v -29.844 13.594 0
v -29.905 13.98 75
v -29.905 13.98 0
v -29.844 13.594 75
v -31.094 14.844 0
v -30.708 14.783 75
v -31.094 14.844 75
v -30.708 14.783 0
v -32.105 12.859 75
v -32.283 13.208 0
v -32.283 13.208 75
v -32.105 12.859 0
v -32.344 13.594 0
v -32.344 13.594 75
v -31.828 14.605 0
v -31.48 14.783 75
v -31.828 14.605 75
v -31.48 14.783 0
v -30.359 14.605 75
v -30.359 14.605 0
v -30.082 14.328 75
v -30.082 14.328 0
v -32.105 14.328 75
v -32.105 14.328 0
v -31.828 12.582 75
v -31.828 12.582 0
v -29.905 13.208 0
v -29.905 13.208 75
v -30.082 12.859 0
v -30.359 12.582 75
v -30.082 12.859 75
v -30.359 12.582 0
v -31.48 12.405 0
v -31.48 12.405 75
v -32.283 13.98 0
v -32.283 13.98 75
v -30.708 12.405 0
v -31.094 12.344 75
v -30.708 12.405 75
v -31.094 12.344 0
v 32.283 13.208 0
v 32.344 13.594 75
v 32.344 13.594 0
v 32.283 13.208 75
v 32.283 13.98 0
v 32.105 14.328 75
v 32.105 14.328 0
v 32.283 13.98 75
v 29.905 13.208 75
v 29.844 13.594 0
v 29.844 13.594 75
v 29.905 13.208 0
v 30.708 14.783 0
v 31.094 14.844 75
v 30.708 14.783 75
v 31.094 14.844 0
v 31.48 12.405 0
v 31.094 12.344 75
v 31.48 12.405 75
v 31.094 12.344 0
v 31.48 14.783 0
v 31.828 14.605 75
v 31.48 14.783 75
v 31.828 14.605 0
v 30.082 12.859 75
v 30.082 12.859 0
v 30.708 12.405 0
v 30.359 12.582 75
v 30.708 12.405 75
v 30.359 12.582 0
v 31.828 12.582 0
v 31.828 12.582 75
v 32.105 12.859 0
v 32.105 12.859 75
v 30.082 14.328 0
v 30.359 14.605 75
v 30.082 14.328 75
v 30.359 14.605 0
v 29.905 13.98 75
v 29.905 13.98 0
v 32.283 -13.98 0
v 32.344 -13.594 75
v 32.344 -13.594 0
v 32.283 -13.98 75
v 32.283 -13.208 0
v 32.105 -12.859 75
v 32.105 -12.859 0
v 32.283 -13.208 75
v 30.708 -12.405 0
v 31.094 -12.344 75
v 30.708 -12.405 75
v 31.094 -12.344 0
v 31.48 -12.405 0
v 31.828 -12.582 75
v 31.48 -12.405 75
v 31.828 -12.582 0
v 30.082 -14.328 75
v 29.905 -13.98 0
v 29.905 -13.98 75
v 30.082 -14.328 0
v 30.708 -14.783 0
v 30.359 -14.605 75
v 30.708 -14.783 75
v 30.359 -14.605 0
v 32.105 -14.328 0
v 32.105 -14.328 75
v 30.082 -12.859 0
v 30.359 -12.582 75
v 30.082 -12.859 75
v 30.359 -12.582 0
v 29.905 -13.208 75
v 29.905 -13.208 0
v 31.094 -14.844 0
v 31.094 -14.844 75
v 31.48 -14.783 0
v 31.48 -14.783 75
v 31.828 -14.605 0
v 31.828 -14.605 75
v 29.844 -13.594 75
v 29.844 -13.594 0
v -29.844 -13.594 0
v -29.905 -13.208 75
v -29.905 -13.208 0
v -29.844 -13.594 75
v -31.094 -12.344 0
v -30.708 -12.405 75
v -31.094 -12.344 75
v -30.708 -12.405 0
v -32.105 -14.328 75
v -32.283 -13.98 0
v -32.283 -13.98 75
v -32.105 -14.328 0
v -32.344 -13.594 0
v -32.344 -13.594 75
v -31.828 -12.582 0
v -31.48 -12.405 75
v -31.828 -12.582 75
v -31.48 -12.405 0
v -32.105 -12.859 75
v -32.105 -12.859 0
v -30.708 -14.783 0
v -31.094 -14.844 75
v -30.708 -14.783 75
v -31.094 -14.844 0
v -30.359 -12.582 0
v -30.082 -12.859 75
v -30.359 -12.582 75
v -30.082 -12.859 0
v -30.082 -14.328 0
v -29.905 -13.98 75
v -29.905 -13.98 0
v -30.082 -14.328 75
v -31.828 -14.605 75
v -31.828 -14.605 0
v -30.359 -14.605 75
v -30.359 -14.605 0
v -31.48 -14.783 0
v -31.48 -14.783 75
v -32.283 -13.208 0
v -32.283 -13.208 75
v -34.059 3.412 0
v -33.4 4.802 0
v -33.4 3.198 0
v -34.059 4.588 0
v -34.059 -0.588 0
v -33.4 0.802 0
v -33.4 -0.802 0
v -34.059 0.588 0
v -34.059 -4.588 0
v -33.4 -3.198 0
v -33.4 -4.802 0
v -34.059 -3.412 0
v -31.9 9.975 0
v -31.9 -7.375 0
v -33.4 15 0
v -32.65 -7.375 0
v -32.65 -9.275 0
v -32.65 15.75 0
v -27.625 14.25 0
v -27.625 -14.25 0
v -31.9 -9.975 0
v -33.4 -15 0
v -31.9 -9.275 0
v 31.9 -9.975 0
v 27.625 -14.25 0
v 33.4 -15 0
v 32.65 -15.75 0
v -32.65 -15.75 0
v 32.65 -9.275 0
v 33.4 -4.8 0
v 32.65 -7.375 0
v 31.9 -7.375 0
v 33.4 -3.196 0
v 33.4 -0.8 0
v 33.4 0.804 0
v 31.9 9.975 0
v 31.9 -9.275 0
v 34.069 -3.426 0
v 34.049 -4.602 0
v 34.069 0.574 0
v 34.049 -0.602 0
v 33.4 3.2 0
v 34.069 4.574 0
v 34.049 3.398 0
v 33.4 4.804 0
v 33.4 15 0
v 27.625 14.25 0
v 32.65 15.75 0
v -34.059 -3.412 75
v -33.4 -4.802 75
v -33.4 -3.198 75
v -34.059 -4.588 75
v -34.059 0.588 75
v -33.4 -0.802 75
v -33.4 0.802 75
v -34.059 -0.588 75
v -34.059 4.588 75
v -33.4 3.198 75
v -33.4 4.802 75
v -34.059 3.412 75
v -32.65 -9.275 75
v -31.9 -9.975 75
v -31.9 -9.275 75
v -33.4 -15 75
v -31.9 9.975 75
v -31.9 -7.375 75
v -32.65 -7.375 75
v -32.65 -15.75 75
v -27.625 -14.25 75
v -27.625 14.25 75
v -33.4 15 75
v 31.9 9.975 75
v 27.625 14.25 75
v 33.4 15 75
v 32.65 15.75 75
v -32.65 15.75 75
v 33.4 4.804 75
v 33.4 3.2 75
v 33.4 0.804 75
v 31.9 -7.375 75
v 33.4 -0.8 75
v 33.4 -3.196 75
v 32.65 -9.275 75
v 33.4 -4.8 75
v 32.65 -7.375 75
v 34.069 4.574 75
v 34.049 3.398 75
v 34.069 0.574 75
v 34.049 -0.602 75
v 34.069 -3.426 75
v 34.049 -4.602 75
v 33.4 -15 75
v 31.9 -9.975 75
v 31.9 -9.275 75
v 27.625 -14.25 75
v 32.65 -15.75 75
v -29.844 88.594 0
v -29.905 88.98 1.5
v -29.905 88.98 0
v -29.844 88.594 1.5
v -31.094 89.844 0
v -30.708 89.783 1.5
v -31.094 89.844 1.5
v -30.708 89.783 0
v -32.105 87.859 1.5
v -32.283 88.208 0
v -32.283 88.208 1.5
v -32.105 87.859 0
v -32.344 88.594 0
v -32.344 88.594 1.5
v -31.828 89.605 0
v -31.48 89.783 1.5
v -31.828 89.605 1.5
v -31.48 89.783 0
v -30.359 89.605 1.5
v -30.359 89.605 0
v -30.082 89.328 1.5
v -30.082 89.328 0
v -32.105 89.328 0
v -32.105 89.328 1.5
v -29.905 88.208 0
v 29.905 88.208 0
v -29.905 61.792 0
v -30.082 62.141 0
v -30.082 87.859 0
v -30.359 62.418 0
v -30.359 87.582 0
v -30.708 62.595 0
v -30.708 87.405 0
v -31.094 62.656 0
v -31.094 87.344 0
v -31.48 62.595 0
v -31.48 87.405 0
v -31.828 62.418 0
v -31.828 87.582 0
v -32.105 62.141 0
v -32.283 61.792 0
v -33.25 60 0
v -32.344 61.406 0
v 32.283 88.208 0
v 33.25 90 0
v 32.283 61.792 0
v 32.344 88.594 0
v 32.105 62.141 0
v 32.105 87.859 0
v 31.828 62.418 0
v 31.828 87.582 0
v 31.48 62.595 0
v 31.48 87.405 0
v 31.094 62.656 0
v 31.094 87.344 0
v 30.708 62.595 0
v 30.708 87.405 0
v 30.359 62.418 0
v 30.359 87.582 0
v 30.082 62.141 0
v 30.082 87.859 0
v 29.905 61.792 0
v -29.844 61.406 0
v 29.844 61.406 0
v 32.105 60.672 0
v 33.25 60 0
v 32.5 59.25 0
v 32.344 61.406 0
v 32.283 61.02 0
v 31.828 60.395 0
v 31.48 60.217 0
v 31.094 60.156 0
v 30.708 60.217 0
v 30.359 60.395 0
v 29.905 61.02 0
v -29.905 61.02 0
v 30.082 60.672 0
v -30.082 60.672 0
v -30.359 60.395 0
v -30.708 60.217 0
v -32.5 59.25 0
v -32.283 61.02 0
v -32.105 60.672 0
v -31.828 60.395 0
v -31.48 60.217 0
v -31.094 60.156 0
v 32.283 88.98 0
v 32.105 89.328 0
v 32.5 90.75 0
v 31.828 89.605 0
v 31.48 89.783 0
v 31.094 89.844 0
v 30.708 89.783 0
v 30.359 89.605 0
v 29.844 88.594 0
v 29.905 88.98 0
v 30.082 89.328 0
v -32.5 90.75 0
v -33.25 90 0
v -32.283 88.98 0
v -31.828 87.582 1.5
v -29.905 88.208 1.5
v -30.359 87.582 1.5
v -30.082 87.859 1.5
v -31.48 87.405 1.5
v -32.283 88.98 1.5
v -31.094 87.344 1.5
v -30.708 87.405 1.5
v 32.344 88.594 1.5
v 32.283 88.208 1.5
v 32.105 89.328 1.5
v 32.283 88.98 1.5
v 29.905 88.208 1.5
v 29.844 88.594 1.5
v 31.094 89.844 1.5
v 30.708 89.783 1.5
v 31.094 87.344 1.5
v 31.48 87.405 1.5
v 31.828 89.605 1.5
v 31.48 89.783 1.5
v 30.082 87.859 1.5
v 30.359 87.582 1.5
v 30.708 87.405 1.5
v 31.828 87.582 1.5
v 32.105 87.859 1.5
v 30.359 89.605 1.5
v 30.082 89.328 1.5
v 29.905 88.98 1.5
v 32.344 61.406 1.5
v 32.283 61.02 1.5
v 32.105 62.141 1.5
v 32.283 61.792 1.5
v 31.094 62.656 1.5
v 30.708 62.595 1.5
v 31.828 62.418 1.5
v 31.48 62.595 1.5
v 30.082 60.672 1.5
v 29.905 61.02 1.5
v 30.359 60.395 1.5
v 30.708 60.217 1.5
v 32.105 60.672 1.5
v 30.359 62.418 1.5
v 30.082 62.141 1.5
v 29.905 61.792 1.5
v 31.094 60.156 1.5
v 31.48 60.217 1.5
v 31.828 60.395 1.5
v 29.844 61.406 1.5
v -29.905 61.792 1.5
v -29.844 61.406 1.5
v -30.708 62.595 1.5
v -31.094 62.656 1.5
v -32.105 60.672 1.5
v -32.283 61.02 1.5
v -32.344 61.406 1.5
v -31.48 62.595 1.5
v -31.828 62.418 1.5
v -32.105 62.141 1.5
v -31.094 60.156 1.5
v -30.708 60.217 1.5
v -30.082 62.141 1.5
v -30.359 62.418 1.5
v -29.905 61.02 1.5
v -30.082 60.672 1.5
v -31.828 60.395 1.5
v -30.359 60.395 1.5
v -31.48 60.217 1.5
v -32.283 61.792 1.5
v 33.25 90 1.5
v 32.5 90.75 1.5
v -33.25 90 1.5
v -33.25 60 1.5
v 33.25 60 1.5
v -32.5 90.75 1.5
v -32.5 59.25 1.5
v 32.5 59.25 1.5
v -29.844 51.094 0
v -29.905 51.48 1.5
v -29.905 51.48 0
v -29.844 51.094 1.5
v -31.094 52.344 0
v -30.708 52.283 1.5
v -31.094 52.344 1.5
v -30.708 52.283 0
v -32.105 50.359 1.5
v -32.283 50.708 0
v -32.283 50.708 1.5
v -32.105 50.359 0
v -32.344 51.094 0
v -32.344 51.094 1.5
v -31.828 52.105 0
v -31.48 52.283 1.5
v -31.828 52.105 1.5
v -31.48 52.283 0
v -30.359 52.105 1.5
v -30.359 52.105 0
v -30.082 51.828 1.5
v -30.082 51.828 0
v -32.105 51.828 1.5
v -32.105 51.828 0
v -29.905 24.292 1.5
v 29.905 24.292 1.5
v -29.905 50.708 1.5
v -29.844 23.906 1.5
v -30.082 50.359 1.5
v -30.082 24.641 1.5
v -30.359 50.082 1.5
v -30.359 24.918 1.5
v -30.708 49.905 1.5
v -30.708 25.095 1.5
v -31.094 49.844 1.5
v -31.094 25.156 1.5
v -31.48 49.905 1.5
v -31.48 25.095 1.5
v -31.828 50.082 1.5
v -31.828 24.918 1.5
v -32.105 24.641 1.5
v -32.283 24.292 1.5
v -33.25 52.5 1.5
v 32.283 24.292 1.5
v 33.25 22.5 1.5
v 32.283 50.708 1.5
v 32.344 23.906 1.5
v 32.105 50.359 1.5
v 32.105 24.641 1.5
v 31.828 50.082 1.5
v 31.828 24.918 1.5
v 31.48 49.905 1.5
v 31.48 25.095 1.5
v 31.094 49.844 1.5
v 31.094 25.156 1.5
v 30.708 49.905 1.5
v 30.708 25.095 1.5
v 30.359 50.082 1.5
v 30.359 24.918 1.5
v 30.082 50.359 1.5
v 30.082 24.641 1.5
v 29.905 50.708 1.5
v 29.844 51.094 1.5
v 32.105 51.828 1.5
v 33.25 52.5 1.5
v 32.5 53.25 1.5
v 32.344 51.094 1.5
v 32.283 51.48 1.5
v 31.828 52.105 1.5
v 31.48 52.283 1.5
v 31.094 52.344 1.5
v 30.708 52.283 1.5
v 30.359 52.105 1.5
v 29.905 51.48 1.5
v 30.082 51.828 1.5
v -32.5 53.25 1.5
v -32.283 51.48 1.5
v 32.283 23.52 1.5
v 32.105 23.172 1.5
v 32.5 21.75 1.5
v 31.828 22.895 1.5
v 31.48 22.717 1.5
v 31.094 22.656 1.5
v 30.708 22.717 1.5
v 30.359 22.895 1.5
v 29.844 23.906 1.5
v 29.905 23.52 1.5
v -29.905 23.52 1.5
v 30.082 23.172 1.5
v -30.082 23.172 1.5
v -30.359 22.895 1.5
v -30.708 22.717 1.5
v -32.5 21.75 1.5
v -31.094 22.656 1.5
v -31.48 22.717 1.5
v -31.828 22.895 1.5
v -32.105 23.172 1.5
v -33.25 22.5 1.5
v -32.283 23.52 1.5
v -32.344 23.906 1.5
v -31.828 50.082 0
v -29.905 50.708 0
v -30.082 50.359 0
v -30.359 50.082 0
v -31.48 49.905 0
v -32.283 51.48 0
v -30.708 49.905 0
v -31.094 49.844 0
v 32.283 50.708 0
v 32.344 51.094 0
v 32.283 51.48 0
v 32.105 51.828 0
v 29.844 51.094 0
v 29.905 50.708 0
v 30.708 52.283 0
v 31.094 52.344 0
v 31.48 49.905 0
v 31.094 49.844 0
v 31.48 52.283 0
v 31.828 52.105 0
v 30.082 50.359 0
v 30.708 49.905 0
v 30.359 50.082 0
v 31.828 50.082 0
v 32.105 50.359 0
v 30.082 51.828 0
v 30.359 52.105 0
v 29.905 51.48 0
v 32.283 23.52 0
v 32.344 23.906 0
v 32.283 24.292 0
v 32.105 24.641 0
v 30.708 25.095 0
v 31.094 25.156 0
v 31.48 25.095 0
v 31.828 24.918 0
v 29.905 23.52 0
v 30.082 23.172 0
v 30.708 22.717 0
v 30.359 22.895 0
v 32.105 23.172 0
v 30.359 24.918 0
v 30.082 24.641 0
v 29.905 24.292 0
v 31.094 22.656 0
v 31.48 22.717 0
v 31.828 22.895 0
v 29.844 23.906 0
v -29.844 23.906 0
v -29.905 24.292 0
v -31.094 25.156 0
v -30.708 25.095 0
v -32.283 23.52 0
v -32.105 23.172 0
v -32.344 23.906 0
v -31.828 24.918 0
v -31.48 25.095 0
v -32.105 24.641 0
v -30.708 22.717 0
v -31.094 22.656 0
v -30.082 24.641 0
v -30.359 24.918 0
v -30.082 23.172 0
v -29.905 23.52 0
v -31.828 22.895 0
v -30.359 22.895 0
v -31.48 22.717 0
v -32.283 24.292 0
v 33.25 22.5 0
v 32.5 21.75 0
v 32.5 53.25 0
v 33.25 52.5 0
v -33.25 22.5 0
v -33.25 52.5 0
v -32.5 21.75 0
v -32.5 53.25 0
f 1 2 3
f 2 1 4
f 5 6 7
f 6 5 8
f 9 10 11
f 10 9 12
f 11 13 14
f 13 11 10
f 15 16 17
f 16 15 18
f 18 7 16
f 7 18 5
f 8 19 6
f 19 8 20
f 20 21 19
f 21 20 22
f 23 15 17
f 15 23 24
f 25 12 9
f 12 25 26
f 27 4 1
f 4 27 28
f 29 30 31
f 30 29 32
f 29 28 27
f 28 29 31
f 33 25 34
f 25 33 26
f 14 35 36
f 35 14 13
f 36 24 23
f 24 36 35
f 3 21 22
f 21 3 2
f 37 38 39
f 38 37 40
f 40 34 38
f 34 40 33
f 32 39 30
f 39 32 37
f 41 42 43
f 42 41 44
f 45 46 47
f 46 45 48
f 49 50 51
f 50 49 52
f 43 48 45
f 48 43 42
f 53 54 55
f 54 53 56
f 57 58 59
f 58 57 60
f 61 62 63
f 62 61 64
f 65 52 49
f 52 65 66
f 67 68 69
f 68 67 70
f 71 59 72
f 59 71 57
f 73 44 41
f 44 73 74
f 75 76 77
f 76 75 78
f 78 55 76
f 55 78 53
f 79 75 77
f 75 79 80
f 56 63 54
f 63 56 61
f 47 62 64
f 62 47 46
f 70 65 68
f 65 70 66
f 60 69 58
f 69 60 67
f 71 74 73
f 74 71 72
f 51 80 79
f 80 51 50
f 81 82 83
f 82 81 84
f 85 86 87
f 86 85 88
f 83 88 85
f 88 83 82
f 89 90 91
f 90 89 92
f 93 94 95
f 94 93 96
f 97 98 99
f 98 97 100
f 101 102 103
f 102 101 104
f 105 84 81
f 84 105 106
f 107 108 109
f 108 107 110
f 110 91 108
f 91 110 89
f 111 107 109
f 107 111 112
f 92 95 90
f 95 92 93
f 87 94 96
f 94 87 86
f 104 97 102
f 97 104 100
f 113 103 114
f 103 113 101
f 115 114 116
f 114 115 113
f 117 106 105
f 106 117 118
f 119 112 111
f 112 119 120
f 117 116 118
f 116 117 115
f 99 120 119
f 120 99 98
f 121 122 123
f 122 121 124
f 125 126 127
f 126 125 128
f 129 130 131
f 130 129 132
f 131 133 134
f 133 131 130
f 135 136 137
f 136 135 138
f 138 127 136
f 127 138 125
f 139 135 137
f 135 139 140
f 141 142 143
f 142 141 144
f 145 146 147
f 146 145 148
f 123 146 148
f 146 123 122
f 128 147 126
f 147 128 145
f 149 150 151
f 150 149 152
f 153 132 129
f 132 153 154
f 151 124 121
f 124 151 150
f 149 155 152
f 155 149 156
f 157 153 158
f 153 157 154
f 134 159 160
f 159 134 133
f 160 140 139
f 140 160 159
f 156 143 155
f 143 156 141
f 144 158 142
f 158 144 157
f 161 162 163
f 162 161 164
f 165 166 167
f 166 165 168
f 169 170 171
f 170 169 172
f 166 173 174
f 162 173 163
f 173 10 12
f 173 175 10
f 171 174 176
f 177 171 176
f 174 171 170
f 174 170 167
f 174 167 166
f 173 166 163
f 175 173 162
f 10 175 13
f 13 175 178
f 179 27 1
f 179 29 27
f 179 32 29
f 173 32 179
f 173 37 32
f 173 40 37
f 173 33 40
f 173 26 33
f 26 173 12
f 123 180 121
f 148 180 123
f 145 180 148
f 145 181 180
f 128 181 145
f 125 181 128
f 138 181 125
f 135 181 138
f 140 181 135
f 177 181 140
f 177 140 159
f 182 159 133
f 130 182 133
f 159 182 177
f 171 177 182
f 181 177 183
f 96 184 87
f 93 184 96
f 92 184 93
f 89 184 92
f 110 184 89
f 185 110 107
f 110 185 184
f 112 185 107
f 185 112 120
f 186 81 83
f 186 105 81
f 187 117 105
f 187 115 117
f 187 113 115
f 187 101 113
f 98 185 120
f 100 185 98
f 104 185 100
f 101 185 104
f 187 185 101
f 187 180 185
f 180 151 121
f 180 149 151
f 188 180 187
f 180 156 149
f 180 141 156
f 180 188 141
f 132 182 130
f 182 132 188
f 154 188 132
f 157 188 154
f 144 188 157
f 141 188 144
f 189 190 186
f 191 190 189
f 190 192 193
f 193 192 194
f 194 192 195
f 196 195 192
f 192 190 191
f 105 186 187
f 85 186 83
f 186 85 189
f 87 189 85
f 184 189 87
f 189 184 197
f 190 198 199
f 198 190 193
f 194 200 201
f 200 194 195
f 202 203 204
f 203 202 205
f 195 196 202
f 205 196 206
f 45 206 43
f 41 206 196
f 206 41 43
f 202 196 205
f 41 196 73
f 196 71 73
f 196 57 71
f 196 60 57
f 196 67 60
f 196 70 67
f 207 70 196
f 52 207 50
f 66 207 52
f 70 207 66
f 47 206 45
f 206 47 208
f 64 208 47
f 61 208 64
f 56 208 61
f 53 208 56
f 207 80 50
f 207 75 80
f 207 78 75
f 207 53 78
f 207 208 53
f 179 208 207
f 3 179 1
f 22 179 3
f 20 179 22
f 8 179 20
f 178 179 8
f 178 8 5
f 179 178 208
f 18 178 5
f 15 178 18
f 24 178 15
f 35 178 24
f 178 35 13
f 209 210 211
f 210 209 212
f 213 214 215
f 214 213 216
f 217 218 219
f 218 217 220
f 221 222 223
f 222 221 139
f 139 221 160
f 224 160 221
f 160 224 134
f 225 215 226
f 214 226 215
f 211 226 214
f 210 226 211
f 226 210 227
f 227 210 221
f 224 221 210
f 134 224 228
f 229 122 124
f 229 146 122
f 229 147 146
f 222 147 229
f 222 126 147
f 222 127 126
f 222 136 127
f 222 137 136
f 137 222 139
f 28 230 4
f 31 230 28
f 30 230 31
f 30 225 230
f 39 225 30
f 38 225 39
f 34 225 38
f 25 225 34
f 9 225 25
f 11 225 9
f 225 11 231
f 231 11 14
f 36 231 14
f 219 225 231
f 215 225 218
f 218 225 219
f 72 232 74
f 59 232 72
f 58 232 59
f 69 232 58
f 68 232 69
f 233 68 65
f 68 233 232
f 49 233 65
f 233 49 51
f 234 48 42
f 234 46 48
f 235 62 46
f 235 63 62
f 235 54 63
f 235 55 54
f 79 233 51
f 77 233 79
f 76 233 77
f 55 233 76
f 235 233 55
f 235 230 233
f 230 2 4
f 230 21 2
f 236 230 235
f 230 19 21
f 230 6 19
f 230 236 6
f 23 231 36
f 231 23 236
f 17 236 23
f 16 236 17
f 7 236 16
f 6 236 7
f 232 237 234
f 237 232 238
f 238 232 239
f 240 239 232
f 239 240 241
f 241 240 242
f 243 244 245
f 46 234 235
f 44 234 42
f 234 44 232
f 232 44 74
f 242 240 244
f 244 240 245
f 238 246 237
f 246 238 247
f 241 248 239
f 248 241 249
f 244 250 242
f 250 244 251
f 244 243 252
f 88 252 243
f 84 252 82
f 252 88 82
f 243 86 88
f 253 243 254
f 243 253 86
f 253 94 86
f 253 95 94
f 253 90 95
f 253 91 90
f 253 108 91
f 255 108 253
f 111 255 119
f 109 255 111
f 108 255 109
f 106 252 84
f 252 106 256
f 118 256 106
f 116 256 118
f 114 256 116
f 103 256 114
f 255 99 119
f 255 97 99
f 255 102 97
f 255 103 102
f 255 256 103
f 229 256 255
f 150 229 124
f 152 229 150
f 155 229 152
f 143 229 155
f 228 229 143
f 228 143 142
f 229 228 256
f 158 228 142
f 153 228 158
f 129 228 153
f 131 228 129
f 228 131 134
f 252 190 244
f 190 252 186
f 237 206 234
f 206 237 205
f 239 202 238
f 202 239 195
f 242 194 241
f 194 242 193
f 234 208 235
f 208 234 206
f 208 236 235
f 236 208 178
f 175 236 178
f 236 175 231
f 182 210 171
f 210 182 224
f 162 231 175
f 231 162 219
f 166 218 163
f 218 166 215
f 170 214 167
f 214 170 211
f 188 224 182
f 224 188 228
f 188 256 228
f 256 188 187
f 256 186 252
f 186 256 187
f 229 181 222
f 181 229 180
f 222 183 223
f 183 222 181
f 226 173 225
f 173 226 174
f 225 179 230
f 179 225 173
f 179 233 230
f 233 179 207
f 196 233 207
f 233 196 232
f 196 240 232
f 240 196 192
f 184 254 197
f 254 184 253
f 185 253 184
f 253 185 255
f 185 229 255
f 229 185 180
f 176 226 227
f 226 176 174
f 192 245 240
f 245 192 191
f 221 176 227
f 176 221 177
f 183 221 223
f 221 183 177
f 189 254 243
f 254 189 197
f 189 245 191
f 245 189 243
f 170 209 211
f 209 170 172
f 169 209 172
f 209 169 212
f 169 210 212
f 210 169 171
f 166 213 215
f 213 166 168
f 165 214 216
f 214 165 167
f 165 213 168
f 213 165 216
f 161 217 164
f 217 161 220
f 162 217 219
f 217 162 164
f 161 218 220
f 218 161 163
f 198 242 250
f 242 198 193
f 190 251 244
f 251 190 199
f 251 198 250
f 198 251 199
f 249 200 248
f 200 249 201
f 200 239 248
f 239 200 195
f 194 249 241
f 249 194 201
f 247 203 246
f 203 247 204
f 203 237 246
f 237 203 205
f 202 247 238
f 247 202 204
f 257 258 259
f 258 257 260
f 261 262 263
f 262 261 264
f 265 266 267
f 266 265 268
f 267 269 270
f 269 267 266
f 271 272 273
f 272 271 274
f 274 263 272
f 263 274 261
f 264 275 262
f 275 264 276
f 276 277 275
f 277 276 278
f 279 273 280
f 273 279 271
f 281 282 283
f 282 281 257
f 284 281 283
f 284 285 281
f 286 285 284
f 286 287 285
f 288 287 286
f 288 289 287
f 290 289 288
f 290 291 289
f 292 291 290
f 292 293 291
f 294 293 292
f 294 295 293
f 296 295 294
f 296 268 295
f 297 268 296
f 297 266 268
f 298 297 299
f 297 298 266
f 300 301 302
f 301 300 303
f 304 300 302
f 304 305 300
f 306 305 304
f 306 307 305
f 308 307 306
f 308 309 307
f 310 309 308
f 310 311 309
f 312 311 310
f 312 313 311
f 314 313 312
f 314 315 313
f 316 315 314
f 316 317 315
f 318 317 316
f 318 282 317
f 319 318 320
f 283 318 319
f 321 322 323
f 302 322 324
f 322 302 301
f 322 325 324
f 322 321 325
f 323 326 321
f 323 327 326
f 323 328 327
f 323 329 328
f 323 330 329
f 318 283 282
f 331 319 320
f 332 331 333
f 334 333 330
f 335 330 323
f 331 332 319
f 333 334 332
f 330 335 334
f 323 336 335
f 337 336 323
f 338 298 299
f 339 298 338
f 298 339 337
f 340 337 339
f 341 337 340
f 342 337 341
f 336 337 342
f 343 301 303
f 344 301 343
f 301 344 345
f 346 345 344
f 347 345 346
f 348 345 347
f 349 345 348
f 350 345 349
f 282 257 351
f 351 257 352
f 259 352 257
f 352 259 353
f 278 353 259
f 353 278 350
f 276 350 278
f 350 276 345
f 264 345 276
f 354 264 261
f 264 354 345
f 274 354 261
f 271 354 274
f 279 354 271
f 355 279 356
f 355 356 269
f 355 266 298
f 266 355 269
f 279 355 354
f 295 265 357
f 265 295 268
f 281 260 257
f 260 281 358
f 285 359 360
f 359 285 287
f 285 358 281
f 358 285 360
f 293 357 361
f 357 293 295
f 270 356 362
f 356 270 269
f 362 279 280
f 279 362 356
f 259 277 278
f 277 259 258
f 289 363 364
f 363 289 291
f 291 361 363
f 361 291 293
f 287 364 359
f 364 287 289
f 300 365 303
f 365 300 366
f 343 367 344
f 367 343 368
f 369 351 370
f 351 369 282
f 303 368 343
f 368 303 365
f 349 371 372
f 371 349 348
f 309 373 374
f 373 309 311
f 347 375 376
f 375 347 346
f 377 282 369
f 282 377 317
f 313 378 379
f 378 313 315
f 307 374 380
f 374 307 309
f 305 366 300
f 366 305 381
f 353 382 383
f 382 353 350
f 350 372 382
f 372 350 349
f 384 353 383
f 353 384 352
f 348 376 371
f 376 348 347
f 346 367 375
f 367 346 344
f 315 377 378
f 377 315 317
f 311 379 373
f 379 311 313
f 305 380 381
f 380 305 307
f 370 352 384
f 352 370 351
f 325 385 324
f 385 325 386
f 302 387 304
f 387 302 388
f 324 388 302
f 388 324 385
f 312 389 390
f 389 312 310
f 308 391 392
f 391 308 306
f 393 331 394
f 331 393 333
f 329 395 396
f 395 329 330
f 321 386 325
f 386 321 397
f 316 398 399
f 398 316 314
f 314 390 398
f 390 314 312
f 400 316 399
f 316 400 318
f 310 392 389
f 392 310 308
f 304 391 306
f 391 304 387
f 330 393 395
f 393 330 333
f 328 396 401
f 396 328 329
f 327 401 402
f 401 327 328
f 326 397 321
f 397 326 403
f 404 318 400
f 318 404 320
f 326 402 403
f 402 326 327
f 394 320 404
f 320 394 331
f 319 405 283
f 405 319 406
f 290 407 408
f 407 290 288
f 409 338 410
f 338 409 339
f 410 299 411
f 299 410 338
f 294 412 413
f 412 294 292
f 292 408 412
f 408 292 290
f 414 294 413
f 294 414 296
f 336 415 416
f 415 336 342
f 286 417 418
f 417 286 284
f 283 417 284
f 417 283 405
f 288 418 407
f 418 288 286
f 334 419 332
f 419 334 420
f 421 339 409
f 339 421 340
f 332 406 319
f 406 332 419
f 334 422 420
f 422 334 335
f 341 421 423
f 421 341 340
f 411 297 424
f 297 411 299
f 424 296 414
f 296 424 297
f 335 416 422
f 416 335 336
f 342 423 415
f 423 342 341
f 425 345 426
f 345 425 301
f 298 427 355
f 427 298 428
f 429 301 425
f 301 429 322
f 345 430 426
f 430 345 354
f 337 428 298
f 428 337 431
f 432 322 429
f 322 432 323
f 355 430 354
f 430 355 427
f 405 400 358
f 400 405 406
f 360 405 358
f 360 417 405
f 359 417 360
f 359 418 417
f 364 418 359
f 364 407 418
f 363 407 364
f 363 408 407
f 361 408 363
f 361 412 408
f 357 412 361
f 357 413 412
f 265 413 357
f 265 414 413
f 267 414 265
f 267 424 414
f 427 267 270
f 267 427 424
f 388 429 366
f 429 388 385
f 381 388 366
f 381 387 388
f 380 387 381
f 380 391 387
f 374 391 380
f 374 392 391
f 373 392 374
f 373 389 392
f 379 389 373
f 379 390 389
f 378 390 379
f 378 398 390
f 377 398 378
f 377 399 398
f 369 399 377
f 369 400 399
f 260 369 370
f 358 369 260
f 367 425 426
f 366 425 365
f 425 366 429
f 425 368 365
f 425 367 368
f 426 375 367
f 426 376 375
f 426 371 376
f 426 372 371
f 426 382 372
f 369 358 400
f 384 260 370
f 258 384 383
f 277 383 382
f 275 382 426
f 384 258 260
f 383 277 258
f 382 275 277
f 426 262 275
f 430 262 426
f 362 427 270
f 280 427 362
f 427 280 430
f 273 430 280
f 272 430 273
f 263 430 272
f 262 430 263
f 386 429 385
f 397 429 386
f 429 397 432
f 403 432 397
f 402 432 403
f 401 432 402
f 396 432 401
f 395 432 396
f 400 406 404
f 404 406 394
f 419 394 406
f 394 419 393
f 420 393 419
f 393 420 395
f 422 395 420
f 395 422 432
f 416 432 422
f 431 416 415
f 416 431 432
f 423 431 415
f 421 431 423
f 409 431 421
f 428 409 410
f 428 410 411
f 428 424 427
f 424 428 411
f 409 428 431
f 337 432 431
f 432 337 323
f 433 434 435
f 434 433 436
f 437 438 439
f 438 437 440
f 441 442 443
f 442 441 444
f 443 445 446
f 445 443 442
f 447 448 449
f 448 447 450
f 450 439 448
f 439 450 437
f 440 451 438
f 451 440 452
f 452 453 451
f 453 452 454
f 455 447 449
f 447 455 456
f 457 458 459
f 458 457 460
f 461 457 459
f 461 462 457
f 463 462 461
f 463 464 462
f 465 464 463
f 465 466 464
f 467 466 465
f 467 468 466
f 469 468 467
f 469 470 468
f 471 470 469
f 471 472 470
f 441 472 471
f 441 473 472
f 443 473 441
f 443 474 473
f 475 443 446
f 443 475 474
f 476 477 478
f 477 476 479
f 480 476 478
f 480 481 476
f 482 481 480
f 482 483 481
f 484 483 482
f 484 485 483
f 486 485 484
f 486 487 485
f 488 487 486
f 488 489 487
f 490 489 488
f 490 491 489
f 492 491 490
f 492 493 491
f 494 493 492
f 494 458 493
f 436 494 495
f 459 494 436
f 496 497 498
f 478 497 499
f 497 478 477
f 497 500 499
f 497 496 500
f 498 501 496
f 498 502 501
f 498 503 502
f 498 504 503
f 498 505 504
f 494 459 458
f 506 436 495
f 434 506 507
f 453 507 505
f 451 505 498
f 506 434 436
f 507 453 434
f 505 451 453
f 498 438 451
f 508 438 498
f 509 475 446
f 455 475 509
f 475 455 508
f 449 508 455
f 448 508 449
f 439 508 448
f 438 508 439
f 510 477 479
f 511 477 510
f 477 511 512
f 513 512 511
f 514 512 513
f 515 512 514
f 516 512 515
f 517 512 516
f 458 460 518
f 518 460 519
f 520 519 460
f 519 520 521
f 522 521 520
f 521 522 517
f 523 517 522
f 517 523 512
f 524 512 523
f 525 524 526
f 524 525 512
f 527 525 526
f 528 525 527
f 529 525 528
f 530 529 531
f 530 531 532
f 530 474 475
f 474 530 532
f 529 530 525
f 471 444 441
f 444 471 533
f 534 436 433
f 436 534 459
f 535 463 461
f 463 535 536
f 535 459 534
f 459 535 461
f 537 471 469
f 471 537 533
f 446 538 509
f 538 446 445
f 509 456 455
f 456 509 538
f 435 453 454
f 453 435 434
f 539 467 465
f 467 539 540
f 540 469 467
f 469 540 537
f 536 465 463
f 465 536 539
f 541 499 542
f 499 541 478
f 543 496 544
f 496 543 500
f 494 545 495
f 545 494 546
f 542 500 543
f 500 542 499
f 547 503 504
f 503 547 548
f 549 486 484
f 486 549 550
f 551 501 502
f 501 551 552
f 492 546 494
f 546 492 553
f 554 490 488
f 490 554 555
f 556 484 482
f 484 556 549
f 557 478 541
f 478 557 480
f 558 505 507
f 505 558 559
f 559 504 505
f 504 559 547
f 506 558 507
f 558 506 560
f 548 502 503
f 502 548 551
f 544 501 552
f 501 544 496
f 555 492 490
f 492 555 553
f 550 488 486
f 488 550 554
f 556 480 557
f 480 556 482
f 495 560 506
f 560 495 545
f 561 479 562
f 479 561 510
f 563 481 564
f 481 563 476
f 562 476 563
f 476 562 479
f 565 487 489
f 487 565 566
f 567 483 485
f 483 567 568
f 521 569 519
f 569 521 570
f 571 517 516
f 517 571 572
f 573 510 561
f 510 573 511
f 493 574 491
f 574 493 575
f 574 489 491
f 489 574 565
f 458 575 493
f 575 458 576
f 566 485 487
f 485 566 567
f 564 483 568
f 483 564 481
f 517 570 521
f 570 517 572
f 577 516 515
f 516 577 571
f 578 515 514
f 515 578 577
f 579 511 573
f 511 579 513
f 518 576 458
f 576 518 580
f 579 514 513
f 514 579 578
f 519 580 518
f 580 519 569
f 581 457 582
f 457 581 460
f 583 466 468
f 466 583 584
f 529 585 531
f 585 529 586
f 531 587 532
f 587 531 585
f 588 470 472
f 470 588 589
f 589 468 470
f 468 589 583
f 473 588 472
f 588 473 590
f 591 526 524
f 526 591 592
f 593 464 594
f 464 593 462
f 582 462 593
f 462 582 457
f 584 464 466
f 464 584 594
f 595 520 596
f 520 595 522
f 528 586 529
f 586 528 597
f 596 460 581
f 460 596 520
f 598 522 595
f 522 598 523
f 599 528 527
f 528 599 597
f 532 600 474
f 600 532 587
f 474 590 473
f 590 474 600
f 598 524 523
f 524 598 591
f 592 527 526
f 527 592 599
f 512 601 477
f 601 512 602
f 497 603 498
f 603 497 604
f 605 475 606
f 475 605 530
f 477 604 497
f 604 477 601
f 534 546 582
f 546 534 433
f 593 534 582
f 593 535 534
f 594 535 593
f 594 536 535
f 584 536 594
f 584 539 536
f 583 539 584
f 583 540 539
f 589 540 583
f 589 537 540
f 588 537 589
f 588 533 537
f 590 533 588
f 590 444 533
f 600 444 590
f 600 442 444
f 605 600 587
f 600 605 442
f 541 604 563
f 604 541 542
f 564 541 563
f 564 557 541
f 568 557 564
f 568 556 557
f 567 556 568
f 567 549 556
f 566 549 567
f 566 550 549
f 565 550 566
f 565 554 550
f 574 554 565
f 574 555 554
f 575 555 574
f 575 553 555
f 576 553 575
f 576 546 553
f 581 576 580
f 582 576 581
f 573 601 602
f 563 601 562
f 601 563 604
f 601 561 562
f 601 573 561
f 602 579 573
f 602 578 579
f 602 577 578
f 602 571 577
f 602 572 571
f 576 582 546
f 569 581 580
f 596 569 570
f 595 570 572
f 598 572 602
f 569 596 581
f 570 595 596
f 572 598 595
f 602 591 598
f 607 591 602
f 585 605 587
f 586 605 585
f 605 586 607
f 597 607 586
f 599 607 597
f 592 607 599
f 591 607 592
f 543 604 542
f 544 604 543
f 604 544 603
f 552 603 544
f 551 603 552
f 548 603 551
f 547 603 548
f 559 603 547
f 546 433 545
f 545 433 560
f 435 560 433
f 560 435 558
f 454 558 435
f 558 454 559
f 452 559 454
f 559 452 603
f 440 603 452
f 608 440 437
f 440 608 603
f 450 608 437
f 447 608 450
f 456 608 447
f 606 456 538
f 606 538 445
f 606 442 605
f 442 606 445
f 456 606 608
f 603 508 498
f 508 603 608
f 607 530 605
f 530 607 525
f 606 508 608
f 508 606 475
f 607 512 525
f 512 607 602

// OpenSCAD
// preview[view:south east, tilt:top diagonal]

/* [Basic Settings] */
case_type = "custom"; // [arduino:Arduino Uno,custom:Custom]
feet = "none"; // [raised:Raised,mag:Magnetic,hole:Holes,wing:Wings,none:None]
attachment_type = "nothread"; // [hotinsert:Hot Insert,nothread:Undersized Hole]
rib_type = "outer"; // [inner:Inner,outer:Outer,none:None]
bolt_size = 2.5; // [2.5:2.5mm,3:3mm,4:4mm]

/* [Case Options] */
// Include a slot for the PCB at the bottom of the case
bottom_board_cutout = "include"; // [include:Include,exclude:Exclude]
// Add an extra slot for a PCB at the top of the case
top_board_cutout = "exclude"; // [include:Include,exclude:Exclude]
// Add an extra slot for a PCB at mid-height
middle_board_cutout = "exclude"; // [include:Include,exclude:Exclude]
// Include the top of the case
top_cap = "include"; // [include:Include,exclude:Exclude]
// Include the two end caps
end_caps = "include"; // [include:Include,exclude:Exclude]
// Include vents in the top of the case (if available)
vents = "exclude"; // [include:Include,exclude:Exclude]

/* [Custom PCB Dimensions] */
// PCB width in mm
custom_width = 65;
// Case height above PCB in mm
custom_height = 30;
// PCB length in mm
custom_length = 75;
// PCB thickness in mm
pcb_height = 1.6; // Height of all PCB's in mm

/* [Print Details] */
// Wall thickness in mm
wall = 1.5; 
// Percent of shrink in non-threaded holes
hole_shrink = 0.85; 
// Clearance in mm around X, Y and Z of PCB cutouts
pcb_clearance = 0.3; // The clearance amount for the PCB in mm
// Clearance in mm around hot insert holes
hot_insert_clearance = 0.25; // The clearance amount for hot inserts in mm

/* [Hidden] */
hole = bolt_size/2;
fillet = hole * (attachment_type == "hotinsert" ? 4.5 : 4.5);
width = custom_width;
height = custom_height;
length = custom_length;
width = case_type == "arduino" ? 53.50 : custom_width;
height = case_type == "arduino" ? 30 : custom_height;
length = case_type == "arduino" ? 68.7 : custom_length;

color("orange")
union() {
  if (feet == "raised") {
    rotate([90,0,180]) 
      translate([width/2-10,length-10,-(height/2)-wall-1])
      cylinder(h=2, r1=2.5, r2=5, center=false, $fn = 20);
    rotate([90,0,180]) 
      translate([-width/2+10,length-10,-(height/2)-wall-1])
      cylinder(h=2, r1=2.5, r2=5, center=false, $fn = 20);
    rotate([90,0,180]) 
      translate([width/2-10,10,-(height/2)-wall-1])
      cylinder(h=2, r1=2.5, r2=5, center=false, $fn = 20);
    rotate([90,0,180]) 
      translate([-width/2+10,10,-(height/2)-wall-1])
      cylinder(h=2, r1=2.5, r2=5, center=false, $fn = 20);
  }
  else if (feet == "mag") {
    difference() {
      rotate([90,0,180]) 
        translate([width/2-10,length-10,-(height/2)-wall-1])
        cylinder(h=2, r1=3, r2=5, center=false, $fn = 20);
      
      rotate([90,0,180]) 
        translate([width/2-10,length-10,-(height/2)-wall])
        cylinder(2,2.75,2.75,true, $fn = 20);
    }
    difference() {
      rotate([90,0,180]) 
        translate([-width/2+10,length-10,-(height/2)-wall-1])
        cylinder(h=2, r1=3, r2=5, center=false, $fn = 20);
      
      rotate([90,0,180]) 
        translate([-width/2+10,length-10,-(height/2)-wall])
        cylinder(2,2.75,2.75,true, $fn = 20);
    }
    difference() {
      rotate([90,0,180]) 
        translate([width/2-10,10,-(height/2)-wall-1])
        cylinder(h=2, r1=3, r2=5, center=false, $fn = 20);
      
      rotate([90,0,180]) 
        translate([width/2-10,10,-(height/2)-wall])
        cylinder(2,2.75,2.75,true, $fn = 20);
    }
    difference() {
      rotate([90,0,180]) 
        translate([-width/2+10,10,-(height/2)-wall-1])
        cylinder(h=2, r1=3, r2=5, center=false, $fn = 20);
      
      rotate([90,0,180]) 
        translate([-width/2+10,10,-(height/2)-wall])
        cylinder(2,2.75,2.75,true, $fn = 20);
    }
  }
  else if (feet == "wing") {
    translate([width/2,-height/2-wall/2,0])
      difference() {
        cube(size = [8,wall,length]);
        translate([4,0,10])
          rotate([90,90,0])
          cylinder(200,hole,hole,true,$fn=20);
        translate([4,0,length-10])
          rotate([90,90,0])
          cylinder(200,hole,hole,true,$fn=20);
      }
    translate([-(width/2)-8,-height/2-wall/2,0])
      difference() {
        cube(size = [8,wall,length]);
        translate([4,0,10])
          rotate([90,90,0])
          cylinder(200,hole,hole,true,$fn=20);
        translate([4,0,length-10])
          rotate([90,90,0])
          cylinder(200,hole,hole,true,$fn=20);
      }
  }

  difference() {
    linear_extrude(length) {
     // Draw two squares and offset to shell
     difference() {
        offset(r = (wall/2)) {
            square([width+pcb_clearance,height], center = true);
        }
        offset(delta = -(wall/2), chamfer = true) {
            square([width+pcb_clearance,height], center = true);
        }        
      }
      
      // Draw the corners for the attachment holes
      polygon(points=
        [[-(width/2)+fillet,(height/2)],
        [-(width/2),(height/2)-fillet],
        [-(width/2),(height/2)]]
      );
      polygon(points=
        [[(width/2)-fillet,-(height/2)],
        [(width/2),-(height/2)+fillet],
        [(width/2),-(height/2)]]
      );
      polygon(points=
        [[(width/2)-fillet,(height/2)],
        [(width/2),(height/2)-fillet],
        [(width/2),(height/2)]]
      );
      polygon(points=
        [[-(width/2)+fillet,-(height/2)],
        [-(width/2),-(height/2)+fillet],
        [-(width/2),-(height/2)]]
      );          
    }
    
    // Drill the holes for the attachment points, size depends on type
    if (attachment_type == "hotinsert")   
      drill_holes(hole+hot_insert_clearance);  
    else if (attachment_type == "undersize") 
      drill_holes(hole*hole_shrink);  
    else
      drill_holes(hole);
    
    // Carve out the inner ribs
    if (rib_type == "inner")
        make_ribs();  
    
    // Extrude the bottom board for later difference
    if (bottom_board_cutout) {
      translate([0,-(height/2-fillet-2),length/2])
        rotate([90,0,0]) {
          linear_extrude(pcb_height+pcb_clearance) {  
            square([width+pcb_clearance,length+pcb_clearance], center=true);
          }
        }
    }
    
    // Extrude the top board for later difference
    if (top_board_cutout == "include") {
      translate([0,(height/2-fillet-2),length/2])
        rotate([90,0,0]) {
          linear_extrude(pcb_height+pcb_clearance) {  
            square([width+pcb_clearance,length+pcb_clearance], center=true);
          }
        }
    }  
    
    // Extrude the middle board for later difference
    if (middle_board_cutout == "include") {
    translate([0,0,length/2])
      rotate([90,0,0]) {
        linear_extrude(pcb_height+pcb_clearance) {  
          square([width+pcb_clearance,length+pcb_clearance], center=true);
        }
      }
    }
    
    // Remove the top if selected
    if (top_cap == "exclude") {
      translate([0,(height/2)+(wall/2)+1,length/2]) {
        rotate([90,0,0]) {
          linear_extrude(wall+2) {  
            square([width-(fillet+(wall/2)*2),length], center=true);
          }
        }
      }
    }    
    
    // Make holes feet if selected
    if (feet == "hole") {        
      rotate([90,0,180]) 
        translate([width/2-10,length-10,-(height/2)-0])
        cylinder(5,hole,hole,true, $fn = 20, $fn = 20);
      rotate([90,0,180]) 
        translate([-width/2+10,length-10,-(height/2)-wall])
        cylinder(5,hole,hole,true, $fn = 20, $fn = 20);
      rotate([90,0,180]) 
        translate([width/2-10,10,-(height/2)-wall])
        cylinder(5,hole,hole,true, $fn = 20, $fn = 20);
      rotate([90,0,180]) 
        translate([-width/2+10,10,-(height/2)-wall])
        cylinder(5,hole,hole,true, $fn = 20, $fn = 20);
    }  
    
    if (vents == "include") {
      for (a =[0:5]) {
        translate([-(height/2)+wall+(a*7),10,height/3])
        cube([2,25,length*.66]);
      }
    }      
  }

  // Extrude ribs if selected
  if (rib_type == "outer")
      make_ribs();  
}

color("gray")
if (end_caps == "include") {
  translate([0,height*2.50,wall])
  difference() {
    translate([0,0,-wall])
    linear_extrude(wall) {
      offset(r = (wall/2)) {
          square([width,height], center = true);
      }
    }
    drill_holes(hole);
    if (case_type == "arduino") {
      translate([width/2-5.5-9.8,-(height/2-fillet-2)+5.5,0])
        cube(size = [12.5,11,10], center = true);
      translate([-width/2+4.5+3.3,-(height/2-fillet-2)+5.5,0])
        cube(size = [9,11,10], center = true);
    }
  }
  
  translate([0,height*1.25,-length])
  difference() {
    translate([0,0,length])
    linear_extrude(wall) {
      offset(r = (wall/2)) {
          square([width,height], center = true);
      }
    }
    drill_holes(hole);
  }
}

module make_ribs() {  
  rib_count = height >= 40 ? 2 : 1;

  if (rib_count > 0) {
    for (a =[-rib_count:rib_count]) {
      linear_extrude(length) {
        translate([-(width/2)-wall/2,4*a,0])
        circle(1, $fn = 5);
      }
    }
    
    for (a =[-rib_count:rib_count]) {
      linear_extrude(length) {        
        translate([(width/2)+wall/2,4*a,0])
        rotate([0,0,35])
        circle(1, $fn = 5);
      }
    }
  }
}

module drill_holes(drill_size) {    
  echo(drill_size);
  translate([0,0,-wall]) {
    linear_extrude(length+wall*2) {
      translate([-(width/2)+fillet/4,(height/2)-fillet/4,0])
      circle(drill_size, $fn = 20);
    }
    
    linear_extrude(length+wall*2) {
      translate([(width/2)-fillet/4,(height/2)-fillet/4,0])
      circle(drill_size, $fn = 20);
    }
    linear_extrude(length+wall*2) {
      translate([(width/2)-fillet/4,-(height/2)+fillet/4,0])
      circle(drill_size, $fn = 20);
    }
    linear_extrude(length+wall*2) {
      translate([-(width/2)+fillet/4,-(height/2)+fillet/4,0])
      circle(drill_size, $fn = 20);
    }
  }
}
